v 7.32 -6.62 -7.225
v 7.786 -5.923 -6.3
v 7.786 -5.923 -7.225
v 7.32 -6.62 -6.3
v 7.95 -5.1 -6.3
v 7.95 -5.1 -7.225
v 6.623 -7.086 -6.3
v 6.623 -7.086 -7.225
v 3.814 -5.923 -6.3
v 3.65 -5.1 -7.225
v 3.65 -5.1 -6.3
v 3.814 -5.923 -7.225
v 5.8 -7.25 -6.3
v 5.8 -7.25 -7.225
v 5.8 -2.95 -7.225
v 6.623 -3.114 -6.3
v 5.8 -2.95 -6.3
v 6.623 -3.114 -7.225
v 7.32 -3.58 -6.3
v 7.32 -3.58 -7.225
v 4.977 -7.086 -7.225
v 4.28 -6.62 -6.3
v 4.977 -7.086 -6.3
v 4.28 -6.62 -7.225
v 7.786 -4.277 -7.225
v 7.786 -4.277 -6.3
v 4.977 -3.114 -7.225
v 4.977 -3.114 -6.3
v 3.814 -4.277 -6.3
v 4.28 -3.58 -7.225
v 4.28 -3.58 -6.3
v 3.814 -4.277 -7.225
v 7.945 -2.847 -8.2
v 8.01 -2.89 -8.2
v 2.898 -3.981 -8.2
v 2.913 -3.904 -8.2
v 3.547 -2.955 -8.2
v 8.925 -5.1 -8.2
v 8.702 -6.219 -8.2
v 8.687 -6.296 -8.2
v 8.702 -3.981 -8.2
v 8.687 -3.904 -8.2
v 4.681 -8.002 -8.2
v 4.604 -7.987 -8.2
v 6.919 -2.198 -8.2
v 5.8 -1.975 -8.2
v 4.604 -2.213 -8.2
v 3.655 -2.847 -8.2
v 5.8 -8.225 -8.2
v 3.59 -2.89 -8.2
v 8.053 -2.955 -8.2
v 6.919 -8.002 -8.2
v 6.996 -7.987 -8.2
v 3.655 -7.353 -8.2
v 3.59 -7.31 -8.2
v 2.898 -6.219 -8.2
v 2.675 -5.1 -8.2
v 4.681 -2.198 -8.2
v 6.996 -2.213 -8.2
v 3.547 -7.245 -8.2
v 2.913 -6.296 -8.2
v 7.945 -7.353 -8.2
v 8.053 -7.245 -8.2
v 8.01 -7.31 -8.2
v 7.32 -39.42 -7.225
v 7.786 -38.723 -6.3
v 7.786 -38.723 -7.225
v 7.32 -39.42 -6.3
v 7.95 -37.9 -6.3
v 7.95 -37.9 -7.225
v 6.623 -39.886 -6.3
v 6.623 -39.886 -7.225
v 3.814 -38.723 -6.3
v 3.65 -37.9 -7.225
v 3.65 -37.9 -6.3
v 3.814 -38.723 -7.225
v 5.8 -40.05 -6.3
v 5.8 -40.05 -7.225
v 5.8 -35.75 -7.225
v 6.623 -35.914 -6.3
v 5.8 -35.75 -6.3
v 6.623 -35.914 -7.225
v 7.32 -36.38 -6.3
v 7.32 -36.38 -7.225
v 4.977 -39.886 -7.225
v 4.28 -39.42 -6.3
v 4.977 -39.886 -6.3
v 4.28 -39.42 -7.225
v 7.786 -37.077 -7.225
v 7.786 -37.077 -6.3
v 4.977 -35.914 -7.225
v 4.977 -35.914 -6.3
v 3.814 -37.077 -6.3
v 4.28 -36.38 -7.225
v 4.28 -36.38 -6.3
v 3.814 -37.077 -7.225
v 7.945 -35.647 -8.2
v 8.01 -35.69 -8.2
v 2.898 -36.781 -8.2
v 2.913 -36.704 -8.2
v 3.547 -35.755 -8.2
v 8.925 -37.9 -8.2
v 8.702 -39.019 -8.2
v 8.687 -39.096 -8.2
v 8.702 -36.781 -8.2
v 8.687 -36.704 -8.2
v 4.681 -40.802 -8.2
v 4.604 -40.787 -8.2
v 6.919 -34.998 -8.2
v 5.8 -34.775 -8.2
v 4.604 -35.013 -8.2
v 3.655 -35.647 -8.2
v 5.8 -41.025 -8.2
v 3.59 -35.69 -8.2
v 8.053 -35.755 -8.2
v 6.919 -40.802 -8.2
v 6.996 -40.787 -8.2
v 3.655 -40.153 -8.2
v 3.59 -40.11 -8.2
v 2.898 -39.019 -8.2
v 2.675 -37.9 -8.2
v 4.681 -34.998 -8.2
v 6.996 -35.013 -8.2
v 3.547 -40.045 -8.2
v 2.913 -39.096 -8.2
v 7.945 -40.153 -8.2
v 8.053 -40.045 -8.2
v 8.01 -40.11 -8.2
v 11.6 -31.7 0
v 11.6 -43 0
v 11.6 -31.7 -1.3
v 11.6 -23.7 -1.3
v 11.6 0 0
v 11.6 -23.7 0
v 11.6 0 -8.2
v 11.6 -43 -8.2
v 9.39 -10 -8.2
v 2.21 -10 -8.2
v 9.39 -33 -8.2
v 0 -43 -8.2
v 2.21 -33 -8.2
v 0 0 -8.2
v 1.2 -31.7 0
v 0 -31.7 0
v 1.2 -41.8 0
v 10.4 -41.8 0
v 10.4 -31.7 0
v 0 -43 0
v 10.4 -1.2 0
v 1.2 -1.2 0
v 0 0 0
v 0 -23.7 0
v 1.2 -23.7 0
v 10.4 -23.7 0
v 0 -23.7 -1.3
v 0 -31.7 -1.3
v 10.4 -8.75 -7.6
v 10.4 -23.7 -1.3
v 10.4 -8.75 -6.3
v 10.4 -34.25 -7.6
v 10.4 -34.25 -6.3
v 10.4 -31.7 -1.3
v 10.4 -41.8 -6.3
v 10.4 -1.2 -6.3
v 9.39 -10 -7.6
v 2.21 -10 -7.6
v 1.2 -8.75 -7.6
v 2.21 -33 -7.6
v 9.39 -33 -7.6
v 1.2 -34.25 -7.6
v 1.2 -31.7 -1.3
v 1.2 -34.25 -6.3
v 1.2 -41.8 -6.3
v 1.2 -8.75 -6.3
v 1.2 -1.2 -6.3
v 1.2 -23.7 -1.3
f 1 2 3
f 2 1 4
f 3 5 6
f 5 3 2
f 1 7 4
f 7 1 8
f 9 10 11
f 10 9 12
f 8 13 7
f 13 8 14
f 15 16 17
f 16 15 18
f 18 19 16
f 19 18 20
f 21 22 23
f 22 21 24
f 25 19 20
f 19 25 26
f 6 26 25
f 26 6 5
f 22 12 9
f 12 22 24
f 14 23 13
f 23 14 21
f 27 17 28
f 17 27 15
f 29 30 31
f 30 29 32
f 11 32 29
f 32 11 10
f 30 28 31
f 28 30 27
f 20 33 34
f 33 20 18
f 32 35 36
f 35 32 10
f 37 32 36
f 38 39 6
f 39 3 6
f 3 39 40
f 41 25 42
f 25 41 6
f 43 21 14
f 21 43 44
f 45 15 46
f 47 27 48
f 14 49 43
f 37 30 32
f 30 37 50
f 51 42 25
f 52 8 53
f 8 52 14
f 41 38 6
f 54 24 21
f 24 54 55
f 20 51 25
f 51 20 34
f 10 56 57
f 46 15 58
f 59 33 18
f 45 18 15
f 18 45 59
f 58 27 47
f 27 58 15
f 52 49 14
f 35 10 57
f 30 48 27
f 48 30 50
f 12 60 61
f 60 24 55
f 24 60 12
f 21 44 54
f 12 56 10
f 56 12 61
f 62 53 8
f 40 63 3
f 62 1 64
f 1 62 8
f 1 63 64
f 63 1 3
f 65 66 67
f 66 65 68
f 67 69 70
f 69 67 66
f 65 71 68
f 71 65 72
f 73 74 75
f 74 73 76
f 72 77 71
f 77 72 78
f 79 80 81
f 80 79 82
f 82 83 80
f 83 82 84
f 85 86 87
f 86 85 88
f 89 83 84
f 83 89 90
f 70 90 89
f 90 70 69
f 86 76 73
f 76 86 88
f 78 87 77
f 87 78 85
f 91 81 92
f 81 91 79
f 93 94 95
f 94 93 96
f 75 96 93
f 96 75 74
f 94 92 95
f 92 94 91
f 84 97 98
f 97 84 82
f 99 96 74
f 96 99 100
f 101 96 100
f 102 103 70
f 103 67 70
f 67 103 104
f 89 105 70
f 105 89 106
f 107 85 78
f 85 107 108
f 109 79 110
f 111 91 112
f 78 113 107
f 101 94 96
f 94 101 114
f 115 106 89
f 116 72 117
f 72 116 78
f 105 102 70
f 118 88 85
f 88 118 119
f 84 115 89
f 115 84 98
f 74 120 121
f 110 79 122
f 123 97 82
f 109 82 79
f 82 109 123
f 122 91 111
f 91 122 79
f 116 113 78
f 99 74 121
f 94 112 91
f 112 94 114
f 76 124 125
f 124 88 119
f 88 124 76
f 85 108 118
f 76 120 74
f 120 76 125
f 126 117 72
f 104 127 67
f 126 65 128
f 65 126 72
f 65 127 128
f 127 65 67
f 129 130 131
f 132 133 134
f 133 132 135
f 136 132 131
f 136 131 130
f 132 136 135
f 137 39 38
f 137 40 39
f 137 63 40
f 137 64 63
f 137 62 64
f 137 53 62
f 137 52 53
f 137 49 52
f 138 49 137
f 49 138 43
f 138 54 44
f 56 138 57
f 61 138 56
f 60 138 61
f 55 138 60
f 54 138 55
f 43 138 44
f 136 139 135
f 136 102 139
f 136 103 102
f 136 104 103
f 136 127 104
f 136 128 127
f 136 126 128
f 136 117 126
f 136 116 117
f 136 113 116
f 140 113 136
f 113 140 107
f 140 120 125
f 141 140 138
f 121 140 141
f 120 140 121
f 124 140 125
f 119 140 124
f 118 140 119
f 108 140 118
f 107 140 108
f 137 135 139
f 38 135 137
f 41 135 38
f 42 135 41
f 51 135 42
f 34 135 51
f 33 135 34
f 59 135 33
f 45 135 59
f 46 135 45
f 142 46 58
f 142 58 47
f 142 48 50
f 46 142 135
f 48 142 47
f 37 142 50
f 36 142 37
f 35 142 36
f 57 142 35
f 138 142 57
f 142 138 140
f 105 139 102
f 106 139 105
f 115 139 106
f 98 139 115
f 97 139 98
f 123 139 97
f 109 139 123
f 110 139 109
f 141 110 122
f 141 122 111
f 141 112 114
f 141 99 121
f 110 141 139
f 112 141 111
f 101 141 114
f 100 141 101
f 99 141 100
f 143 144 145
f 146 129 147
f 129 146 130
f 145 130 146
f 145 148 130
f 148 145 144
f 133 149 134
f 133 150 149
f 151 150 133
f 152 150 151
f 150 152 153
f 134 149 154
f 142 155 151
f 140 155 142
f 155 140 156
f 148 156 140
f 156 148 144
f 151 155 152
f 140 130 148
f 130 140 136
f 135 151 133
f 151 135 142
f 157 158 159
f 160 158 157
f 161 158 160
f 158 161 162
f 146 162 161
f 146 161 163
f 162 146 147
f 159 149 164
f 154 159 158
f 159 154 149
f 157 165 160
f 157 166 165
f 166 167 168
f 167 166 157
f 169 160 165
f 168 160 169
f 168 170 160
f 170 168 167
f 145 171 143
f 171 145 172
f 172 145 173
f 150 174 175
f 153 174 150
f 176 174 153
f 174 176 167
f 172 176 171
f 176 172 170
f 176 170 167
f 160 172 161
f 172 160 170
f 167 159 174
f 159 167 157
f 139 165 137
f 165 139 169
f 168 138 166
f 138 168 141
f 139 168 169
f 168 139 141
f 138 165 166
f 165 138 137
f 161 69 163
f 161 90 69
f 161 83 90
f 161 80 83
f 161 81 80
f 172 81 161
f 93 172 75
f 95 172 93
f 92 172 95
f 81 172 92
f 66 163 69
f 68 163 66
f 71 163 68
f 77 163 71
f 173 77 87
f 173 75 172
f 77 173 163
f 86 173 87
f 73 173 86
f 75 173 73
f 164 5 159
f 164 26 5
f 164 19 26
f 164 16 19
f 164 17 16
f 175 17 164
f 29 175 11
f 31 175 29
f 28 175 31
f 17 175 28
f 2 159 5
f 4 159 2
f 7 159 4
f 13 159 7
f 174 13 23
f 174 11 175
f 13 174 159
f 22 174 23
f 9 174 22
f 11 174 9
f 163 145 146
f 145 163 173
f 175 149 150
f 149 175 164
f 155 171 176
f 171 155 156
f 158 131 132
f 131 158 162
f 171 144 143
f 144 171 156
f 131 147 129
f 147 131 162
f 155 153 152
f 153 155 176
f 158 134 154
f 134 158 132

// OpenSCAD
// file: mooney_anun_common.scad
// Mooney M20E anunciator bezel, common code

// Cone is 50% wider than the hole
module hole(dia, height) {
    union () {
        cylinder(height, dia/2, dia/2, $fn=16);
        translate ([0,0, height-(dia/4)]) {
            cylinder(dia/4, dia/2, (dia*1.5)/2, $fn=16);
        }
    }
}
// main file
// Mooney M20E anunciator bezel, single light
// Use a black material for this.

// The original has outside corners nicely beveled,
// but we aren't going to bother, because walls are
// too thin for common desktop printers.

body_width = 11.6;
body_length = 43.0;
body_height = 8.2;

wall_thick = 1.20;

glass_width = 9.18;  // with the film folded around
glass_length = 25.0;
glass_thick = 1.7;

screw_dist = 32.8;
screw_dia = 4.3;

use <mooney_anun_common.scad>;

// woops, let's print without a supporting material
rotate (180, [1,0,0]) {

    difference () {
        // Main body
        cube([body_width, body_length, body_height]);

        // Main cavity - 7.6 mm thick
        translate([wall_thick,
                   (body_length-(glass_length+0.5))/2,
                   -0.1]) {
            cube([body_width-(wall_thick*2),
                  glass_length+0.5,
                  body_height-0.5]);
        }

        // Window
        translate([(body_width-(glass_width-2.0))/2,
                   (body_length-(glass_length-2.0))/2,
                   body_height-2.0]){
            cube([glass_width-2.0,
                  glass_length-2.0,
                  2.1]);
        }

        // Side lobes - thicker for screws, 6.8 mm thick
        translate([wall_thick, wall_thick, -0.1]) {
            cube([body_width-(wall_thick*2),
                  body_length-(wall_thick*2),
                  body_height-1.8]);
        }

        // Screw holes
        translate([body_width/2,
                   (body_length-screw_dist)/2,
                   body_height-2.4]) {
            hole(screw_dia, 2.5);
        }
        translate([body_width/2,
                   (body_length-screw_dist)/2 + screw_dist,
                   body_height-2.4]) {
            hole(screw_dia, 2.5);
        }

        // Mysterious cut-outs
        // The location of these cut-outs correspond to
        // the light, so perhaps the idea was to provide
        // cooling. But the bulb is under a thick strip
        // of plexiglass, so it does not work that way.
        translate([-0.1, 23.7,-0.1]) {
            cube([body_width+0.2, 8, 1.4]);
        }
    }
}
